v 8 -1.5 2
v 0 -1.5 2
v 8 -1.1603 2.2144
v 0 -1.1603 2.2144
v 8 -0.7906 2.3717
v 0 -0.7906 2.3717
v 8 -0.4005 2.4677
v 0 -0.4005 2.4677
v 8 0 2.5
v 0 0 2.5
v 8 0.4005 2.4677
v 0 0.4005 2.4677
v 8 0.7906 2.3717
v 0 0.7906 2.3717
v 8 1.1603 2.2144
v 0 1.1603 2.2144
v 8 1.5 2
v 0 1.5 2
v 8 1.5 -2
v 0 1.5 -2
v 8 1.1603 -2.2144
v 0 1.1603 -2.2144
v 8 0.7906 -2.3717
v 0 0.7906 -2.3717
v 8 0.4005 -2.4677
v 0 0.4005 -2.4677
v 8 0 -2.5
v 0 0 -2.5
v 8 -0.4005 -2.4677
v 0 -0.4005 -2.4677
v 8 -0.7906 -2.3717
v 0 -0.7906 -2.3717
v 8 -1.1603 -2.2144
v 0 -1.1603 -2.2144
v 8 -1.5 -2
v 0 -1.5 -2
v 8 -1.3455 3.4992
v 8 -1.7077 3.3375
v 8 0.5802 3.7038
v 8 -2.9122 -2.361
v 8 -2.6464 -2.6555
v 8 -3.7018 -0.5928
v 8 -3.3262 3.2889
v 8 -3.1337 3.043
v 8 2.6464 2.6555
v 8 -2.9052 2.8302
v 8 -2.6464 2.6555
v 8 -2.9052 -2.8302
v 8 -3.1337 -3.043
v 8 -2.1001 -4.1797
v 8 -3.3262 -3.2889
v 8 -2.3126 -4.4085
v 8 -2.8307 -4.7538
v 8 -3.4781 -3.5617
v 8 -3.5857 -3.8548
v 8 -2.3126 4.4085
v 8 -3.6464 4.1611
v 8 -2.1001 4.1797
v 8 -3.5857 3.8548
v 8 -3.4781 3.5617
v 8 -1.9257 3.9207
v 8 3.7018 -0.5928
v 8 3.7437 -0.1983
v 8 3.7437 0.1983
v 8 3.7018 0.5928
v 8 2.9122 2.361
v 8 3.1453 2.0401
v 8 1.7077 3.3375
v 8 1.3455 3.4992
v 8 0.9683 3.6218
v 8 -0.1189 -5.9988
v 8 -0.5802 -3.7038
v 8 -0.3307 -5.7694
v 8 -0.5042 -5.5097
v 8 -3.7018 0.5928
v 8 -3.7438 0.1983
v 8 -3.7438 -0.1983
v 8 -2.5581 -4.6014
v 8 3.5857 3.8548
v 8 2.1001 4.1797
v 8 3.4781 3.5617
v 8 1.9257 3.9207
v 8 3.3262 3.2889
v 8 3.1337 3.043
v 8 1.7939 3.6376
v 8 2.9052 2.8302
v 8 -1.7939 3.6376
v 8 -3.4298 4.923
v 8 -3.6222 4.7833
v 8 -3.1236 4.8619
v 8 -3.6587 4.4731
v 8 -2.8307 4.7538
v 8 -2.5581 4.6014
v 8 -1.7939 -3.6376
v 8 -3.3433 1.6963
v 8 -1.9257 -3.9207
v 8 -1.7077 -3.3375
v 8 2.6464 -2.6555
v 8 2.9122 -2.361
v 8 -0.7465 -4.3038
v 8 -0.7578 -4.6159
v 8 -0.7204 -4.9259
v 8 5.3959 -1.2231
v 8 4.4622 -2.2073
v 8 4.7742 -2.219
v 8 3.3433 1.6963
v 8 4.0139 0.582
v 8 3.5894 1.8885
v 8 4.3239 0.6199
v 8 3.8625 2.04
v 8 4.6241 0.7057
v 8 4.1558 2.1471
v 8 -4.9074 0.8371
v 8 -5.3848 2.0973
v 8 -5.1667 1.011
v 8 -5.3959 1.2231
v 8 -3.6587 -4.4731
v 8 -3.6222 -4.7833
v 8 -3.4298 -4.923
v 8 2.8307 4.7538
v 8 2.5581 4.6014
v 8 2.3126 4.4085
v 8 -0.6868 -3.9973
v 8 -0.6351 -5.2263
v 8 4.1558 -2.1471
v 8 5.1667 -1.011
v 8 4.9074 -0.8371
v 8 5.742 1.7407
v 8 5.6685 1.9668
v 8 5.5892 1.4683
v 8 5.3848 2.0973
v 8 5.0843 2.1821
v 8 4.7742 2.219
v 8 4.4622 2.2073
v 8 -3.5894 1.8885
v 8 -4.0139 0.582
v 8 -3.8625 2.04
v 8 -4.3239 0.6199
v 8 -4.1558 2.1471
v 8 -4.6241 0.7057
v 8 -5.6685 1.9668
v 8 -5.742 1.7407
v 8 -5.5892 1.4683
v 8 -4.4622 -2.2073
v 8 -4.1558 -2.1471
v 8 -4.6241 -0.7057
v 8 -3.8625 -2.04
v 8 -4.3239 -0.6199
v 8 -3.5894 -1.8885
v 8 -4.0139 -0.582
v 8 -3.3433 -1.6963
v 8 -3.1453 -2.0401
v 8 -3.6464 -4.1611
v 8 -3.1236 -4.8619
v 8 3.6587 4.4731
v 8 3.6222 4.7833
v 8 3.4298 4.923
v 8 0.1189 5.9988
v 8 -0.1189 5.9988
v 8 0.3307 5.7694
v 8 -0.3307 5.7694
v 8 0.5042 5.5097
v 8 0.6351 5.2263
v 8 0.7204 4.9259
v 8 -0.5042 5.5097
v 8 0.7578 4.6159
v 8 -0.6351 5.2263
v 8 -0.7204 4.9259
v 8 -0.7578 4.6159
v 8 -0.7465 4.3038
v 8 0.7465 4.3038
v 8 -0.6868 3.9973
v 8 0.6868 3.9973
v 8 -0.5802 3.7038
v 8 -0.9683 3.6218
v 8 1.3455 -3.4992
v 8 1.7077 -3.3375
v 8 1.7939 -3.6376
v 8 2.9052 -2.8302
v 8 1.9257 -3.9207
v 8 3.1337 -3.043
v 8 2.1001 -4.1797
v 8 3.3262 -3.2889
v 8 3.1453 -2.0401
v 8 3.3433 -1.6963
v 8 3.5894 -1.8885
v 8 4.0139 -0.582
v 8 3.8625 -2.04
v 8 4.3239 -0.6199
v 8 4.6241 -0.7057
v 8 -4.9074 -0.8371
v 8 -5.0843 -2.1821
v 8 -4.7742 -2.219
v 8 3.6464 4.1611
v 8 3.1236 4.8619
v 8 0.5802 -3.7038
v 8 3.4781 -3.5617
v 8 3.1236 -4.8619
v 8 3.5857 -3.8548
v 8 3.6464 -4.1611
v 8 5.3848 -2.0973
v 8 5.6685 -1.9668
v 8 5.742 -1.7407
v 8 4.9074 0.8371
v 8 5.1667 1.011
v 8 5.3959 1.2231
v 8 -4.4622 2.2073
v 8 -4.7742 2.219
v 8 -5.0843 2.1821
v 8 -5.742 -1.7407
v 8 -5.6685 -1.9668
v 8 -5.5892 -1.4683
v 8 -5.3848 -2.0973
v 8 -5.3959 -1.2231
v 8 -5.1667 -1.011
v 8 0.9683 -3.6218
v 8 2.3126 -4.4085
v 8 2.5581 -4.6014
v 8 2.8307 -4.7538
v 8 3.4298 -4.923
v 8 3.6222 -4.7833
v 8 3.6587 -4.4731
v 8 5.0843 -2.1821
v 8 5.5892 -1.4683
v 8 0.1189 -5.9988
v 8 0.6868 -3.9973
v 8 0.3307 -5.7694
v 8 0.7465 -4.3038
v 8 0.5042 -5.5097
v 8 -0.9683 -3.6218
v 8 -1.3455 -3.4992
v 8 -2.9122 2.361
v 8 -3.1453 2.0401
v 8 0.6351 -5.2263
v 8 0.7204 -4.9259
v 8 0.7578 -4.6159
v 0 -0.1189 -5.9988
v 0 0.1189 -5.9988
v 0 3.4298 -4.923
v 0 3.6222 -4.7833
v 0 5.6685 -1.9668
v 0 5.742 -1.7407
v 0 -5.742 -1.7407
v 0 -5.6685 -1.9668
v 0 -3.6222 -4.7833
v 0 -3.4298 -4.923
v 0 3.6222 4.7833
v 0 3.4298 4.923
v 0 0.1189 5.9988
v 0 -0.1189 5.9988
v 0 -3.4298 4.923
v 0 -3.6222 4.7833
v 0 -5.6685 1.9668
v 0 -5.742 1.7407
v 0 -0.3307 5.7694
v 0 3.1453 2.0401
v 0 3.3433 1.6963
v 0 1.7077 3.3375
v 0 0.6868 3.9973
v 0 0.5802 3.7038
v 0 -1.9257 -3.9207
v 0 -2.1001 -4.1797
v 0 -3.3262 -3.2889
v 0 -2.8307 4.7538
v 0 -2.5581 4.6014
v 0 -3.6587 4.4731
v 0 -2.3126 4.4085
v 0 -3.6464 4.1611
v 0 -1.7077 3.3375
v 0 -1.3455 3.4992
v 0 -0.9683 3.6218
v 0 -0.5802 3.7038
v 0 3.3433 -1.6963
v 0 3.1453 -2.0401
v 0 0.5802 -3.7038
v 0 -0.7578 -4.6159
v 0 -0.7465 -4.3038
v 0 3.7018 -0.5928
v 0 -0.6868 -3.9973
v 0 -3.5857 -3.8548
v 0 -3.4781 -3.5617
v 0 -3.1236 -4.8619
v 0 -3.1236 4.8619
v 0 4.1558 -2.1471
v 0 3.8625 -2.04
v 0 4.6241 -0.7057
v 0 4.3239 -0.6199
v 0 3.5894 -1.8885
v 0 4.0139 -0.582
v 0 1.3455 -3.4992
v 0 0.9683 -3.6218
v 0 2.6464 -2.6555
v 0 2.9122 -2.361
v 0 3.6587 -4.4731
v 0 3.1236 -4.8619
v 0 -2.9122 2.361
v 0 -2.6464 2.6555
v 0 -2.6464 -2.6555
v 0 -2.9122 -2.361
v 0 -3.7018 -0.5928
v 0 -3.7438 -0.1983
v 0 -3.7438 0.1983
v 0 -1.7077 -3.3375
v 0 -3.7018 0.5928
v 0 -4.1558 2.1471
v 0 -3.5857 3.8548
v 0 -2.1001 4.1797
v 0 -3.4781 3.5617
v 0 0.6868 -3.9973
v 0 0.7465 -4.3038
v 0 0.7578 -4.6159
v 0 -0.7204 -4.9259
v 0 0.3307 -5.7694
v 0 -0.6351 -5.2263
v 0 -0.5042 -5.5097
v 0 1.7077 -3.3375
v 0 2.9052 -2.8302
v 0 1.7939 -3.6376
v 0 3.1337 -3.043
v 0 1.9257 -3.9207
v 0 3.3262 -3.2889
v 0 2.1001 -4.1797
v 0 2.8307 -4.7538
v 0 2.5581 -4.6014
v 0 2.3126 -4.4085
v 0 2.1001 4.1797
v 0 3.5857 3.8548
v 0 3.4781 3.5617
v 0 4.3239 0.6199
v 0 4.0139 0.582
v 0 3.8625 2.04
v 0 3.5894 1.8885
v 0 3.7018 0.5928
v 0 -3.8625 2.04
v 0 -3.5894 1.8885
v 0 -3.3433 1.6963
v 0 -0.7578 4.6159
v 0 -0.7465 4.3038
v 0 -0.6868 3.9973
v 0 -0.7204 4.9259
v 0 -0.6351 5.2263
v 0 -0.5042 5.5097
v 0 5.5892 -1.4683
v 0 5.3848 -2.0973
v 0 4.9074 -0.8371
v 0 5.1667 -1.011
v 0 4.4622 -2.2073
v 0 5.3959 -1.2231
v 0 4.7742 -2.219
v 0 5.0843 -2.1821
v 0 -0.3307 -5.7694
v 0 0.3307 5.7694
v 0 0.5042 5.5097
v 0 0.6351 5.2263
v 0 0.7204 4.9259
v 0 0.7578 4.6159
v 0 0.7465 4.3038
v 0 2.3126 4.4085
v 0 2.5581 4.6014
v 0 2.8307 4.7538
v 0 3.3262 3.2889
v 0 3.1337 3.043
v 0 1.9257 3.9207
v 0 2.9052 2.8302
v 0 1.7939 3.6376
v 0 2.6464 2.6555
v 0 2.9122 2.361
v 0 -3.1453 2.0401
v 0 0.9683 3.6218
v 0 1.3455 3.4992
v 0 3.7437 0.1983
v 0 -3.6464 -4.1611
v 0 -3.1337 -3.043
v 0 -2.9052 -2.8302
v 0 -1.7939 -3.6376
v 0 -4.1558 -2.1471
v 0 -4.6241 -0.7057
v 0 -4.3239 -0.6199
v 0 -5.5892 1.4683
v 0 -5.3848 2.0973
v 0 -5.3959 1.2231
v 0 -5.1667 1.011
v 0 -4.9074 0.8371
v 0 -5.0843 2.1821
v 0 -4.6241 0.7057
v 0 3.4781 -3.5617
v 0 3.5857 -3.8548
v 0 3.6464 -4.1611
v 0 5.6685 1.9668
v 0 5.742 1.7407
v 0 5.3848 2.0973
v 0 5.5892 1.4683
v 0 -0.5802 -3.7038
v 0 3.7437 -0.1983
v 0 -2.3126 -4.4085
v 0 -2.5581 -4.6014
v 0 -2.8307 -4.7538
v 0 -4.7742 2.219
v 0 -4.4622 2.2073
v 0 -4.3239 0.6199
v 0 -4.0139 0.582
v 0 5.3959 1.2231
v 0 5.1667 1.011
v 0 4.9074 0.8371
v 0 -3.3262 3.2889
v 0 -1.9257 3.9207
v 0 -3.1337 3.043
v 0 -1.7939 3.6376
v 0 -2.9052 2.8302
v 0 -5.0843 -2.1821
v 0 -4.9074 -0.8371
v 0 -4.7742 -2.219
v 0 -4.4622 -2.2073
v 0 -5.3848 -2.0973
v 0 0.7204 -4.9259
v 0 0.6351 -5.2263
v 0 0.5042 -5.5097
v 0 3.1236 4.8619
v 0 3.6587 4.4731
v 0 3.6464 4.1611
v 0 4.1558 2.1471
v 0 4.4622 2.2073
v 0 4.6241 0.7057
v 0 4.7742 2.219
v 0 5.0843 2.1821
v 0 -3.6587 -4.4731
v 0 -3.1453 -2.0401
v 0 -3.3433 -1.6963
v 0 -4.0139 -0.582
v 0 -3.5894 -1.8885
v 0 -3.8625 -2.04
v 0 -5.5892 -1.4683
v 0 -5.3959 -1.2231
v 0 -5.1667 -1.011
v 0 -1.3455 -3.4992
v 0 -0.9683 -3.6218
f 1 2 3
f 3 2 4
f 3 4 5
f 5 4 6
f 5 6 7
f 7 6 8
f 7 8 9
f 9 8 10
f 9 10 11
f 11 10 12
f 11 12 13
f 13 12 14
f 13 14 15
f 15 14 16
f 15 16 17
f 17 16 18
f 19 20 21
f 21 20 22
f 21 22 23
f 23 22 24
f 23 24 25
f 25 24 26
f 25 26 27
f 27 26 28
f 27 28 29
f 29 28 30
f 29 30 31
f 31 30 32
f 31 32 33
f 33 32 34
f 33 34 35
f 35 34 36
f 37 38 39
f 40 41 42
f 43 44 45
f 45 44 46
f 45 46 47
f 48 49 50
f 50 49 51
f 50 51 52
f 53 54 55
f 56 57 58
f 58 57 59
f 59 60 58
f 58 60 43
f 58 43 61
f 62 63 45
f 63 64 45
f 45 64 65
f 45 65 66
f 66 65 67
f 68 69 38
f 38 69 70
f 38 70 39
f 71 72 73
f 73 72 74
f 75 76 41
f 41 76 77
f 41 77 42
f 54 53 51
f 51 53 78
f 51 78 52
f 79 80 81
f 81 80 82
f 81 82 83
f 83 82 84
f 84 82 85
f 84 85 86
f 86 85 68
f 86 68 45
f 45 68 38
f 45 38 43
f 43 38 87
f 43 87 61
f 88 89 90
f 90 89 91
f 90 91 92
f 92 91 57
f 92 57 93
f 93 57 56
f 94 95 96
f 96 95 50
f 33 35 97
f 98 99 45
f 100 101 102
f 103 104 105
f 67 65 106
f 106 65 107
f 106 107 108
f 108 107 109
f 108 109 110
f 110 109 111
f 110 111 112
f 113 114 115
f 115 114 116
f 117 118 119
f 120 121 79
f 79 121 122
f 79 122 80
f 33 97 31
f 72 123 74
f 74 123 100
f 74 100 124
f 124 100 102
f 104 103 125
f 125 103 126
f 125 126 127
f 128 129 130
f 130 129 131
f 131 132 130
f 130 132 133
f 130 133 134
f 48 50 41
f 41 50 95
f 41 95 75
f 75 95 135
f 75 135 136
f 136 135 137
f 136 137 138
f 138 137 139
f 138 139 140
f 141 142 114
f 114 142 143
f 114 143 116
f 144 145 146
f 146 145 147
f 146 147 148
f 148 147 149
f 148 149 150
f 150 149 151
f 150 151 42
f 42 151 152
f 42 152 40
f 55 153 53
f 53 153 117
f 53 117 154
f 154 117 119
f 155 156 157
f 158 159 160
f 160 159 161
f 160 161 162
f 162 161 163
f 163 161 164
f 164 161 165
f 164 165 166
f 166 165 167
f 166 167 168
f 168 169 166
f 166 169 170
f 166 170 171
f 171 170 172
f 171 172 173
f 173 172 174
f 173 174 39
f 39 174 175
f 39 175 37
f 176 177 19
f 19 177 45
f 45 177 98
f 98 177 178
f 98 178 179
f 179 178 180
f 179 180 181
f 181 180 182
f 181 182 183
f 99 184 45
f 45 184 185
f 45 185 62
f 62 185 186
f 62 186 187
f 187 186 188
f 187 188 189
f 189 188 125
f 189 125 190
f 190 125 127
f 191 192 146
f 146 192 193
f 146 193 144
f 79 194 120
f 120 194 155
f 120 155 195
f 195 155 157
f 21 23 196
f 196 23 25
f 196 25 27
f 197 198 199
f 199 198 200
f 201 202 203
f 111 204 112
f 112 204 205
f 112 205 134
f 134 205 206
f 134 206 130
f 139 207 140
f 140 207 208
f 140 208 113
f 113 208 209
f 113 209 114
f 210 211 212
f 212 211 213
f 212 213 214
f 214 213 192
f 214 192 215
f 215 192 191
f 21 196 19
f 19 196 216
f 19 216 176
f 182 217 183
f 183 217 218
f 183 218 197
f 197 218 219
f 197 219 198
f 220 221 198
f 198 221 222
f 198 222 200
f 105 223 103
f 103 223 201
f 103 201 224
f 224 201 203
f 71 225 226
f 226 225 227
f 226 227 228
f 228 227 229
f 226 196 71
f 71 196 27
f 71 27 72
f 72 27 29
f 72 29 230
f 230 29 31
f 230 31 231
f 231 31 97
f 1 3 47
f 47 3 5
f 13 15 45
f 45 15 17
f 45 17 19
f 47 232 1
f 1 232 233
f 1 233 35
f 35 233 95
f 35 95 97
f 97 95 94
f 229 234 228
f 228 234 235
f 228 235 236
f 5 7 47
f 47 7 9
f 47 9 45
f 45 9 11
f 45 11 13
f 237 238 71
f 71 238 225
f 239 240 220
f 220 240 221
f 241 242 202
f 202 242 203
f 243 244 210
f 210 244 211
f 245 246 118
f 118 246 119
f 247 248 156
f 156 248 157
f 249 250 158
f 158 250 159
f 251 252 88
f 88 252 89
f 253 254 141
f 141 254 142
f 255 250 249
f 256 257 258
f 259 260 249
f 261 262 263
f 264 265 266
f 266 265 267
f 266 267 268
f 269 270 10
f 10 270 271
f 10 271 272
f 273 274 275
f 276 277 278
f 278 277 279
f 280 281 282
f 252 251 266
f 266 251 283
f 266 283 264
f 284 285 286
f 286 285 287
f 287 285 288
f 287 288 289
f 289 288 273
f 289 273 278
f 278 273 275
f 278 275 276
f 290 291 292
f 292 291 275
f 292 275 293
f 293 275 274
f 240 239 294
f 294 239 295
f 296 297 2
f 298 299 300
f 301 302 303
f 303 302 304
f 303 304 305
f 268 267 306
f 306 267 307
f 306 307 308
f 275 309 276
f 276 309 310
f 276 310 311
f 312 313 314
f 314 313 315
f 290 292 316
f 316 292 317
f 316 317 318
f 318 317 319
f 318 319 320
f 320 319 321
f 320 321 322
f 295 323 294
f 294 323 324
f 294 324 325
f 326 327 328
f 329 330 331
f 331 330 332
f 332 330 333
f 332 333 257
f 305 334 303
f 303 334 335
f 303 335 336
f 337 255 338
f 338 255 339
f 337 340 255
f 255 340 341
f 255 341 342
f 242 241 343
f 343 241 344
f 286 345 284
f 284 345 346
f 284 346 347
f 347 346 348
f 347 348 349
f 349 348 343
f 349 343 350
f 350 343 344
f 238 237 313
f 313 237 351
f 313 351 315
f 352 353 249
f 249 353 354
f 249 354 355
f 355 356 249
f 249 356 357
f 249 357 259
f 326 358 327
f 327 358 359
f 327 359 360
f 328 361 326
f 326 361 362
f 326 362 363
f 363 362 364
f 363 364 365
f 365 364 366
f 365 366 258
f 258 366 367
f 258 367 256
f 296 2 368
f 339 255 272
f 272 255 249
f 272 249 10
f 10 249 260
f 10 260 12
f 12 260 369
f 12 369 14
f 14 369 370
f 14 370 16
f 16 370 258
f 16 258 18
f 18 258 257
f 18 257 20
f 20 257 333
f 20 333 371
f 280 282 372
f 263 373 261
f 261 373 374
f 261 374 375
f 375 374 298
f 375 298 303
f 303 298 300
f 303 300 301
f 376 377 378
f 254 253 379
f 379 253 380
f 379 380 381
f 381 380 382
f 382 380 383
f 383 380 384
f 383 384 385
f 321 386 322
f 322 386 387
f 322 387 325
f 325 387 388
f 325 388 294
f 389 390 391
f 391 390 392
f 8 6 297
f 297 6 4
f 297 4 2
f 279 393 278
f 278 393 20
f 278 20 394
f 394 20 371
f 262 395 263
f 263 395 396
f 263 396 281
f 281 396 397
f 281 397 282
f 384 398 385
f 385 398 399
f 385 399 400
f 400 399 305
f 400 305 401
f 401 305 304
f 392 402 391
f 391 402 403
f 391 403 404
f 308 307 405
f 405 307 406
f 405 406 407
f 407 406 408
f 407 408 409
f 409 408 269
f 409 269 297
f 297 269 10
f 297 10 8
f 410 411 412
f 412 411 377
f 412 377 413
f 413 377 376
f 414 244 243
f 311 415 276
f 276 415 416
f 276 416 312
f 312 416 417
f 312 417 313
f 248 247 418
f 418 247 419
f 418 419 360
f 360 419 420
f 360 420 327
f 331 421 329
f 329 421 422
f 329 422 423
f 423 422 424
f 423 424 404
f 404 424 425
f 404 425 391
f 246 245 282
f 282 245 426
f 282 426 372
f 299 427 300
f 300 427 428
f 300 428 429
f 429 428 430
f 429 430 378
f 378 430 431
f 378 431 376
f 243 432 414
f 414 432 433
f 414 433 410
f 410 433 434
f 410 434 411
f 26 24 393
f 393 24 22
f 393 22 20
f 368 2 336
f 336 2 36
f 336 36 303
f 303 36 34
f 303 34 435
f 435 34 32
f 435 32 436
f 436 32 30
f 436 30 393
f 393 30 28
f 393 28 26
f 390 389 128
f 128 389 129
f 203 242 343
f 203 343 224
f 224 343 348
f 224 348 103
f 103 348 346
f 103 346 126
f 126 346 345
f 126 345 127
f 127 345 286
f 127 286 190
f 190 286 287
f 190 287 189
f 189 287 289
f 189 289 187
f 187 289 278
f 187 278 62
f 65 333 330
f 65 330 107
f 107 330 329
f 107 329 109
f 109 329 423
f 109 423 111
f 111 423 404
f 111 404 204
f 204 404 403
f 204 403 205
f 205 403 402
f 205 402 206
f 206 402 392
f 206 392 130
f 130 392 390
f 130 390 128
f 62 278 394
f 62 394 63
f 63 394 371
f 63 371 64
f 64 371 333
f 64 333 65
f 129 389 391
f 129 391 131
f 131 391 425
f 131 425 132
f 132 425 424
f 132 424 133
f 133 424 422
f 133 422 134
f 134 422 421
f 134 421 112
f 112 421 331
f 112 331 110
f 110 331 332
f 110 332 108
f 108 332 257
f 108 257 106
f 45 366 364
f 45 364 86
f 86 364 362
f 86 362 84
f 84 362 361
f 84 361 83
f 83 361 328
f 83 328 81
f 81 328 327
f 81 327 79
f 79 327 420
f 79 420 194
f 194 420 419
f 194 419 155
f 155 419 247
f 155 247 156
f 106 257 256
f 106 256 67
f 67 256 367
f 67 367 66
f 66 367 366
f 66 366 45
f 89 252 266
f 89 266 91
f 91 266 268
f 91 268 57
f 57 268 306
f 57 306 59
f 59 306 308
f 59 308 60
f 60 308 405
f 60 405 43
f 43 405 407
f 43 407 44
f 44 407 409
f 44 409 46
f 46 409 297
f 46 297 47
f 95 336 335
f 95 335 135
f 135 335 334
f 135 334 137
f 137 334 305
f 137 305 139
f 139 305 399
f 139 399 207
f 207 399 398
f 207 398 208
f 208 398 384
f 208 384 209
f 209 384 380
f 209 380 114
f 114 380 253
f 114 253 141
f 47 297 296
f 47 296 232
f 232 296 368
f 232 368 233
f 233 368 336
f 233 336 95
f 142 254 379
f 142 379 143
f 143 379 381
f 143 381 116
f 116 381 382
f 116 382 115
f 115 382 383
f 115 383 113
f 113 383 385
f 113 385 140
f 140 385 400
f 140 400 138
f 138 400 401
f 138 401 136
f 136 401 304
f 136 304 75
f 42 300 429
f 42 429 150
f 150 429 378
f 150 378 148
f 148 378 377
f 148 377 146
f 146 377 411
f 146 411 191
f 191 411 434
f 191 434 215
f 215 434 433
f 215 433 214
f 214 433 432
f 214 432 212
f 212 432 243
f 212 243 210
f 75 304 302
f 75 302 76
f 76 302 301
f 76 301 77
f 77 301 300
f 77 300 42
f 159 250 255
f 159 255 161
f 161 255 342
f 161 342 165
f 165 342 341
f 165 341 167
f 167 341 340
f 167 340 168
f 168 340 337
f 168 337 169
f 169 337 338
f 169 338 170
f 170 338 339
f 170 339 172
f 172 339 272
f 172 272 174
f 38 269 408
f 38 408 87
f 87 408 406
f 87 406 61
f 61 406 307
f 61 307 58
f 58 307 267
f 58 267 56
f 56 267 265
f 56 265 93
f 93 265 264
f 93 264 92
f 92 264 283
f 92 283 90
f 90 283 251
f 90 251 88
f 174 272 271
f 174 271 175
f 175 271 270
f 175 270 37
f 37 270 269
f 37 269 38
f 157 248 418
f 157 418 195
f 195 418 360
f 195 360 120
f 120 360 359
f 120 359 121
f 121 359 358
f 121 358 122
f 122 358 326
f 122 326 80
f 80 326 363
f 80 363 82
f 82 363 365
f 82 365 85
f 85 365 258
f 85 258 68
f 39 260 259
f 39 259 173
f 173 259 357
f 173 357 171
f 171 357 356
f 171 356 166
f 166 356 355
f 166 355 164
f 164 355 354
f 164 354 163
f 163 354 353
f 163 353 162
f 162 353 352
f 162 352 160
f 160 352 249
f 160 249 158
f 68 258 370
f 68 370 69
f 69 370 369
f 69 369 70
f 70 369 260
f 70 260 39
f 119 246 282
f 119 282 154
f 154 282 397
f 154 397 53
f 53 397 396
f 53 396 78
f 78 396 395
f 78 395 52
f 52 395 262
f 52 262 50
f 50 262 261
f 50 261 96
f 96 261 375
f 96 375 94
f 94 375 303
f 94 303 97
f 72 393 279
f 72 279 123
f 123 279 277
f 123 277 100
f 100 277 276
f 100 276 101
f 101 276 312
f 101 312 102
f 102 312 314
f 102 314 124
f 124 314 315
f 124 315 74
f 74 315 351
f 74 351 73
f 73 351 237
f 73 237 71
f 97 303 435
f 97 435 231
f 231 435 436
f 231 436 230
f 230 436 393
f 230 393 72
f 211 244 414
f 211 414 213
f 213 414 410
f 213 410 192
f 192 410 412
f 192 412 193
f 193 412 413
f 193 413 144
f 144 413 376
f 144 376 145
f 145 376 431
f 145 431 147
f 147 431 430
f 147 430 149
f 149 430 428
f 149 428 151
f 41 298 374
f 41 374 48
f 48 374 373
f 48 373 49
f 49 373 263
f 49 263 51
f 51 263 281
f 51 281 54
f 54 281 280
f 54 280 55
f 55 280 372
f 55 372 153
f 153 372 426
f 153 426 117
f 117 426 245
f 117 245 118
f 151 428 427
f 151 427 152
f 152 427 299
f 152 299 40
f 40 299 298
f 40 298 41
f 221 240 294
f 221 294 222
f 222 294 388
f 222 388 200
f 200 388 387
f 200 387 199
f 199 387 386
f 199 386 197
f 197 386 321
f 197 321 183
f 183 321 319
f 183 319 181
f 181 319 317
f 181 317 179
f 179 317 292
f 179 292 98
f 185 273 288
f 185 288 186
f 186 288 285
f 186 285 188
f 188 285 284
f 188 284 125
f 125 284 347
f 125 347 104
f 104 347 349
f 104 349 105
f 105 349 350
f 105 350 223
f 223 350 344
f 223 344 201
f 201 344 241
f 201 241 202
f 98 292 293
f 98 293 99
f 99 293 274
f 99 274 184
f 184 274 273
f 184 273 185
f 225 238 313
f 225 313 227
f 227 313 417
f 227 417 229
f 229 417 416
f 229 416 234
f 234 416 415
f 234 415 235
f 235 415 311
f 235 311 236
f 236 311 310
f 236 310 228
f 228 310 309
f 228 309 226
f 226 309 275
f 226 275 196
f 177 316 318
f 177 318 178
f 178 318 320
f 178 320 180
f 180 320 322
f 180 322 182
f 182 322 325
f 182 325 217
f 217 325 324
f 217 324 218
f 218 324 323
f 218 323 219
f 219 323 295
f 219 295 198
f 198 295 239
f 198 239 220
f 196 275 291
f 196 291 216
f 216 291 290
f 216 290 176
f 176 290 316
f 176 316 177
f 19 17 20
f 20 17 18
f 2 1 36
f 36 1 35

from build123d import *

# Parameters (mm, degrees)
BASPROSKE_W              = 8
BASPROSKE_H              = 6
TOOTHCUT_DEPTH           = 12.66190379
TEETHCUTS_COUNT          = 10
TEETHCUTS_ANGLE          = 324
BORSKE_R                 = 2.5
BORE_DEPTH               = 50.0000508
RESSALTO_EXTRUS_O3_DEPTH = 8


with BuildPart() as part:
    # BasProSke → Base-Revolve (revolve)
    with BuildSketch(Plane(origin=(0, 0, 0), x_dir=(1, 0, 0), z_dir=(0, 1, 0)), mode=Mode.PRIVATE) as base_revolve_sk:
        with Locations((4, 3)):
            Rectangle(BASPROSKE_W, BASPROSKE_H)
    revolve(base_revolve_sk.sketch.rotate(Axis((-10, 0, 0), (1, 0, 0)), 180), axis=Axis((-10, 0, 0), (1, 0, 0)))

    # TooCutSke → ToothCut (cut, through all)
    with BuildSketch(Plane(origin=(0, 0, 0), x_dir=(0, 0, -1), z_dir=(1, 0, 0))):
        with BuildLine():
            ThreePointArc((0.59278292, 3.701838653), (0, 3.749), (-0.59278292, 3.701838653))
            ThreePointArc((-0.59278292, 3.701838653), (-0.846593509, 4.924114224), (-1.775771316, 5.757784417))
            ThreePointArc((-1.775771316, 5.757784417), (0, 6.0254), (1.775771316, 5.757784417))
            ThreePointArc((1.775771316, 5.757784417), (0.846593509, 4.924114224), (0.59278292, 3.701838653))
        make_face()
    toothcut = extrude(amount=TOOTHCUT_DEPTH, mode=Mode.SUBTRACT)

    # TeethCuts: ToothCut ×10 about axis
    teethcuts_axis = Axis((-10, 0, 0), (1, 0, 0))
    for i in range(1, TEETHCUTS_COUNT):
        add(toothcut.rotate(teethcuts_axis, i * TEETHCUTS_ANGLE / (TEETHCUTS_COUNT - 1)), mode=Mode.SUBTRACT)

    # BorSke → Bore (cut, symmetric)
    with BuildSketch(Plane(origin=(0, 0, 0), x_dir=(0, 0, -1), z_dir=(1, 0, 0))):
        with Locations(Location((0, 0, 0), (0, 0, 180))):
            Circle(BORSKE_R)
    extrude(amount=BORE_DEPTH, both=True, mode=Mode.SUBTRACT)

    # Esboço1 → Ressalto-extrusão3 (add)
    with BuildSketch(Plane(origin=(8, 0, 0), x_dir=(0, 0, -1), z_dir=(1, 0, 0))):
        with BuildLine():
            ThreePointArc((2, 1.5), (0, 2.5), (-2, 1.5))
            Line((-2, 1.5), (2, 1.5))
        make_face()
        with BuildLine():
            Line((2, -1.5), (-2, -1.5))
            ThreePointArc((-2, -1.5), (0, -2.5), (2, -1.5))
        make_face()
    extrude(amount=-RESSALTO_EXTRUS_O3_DEPTH)


solid = part.part
